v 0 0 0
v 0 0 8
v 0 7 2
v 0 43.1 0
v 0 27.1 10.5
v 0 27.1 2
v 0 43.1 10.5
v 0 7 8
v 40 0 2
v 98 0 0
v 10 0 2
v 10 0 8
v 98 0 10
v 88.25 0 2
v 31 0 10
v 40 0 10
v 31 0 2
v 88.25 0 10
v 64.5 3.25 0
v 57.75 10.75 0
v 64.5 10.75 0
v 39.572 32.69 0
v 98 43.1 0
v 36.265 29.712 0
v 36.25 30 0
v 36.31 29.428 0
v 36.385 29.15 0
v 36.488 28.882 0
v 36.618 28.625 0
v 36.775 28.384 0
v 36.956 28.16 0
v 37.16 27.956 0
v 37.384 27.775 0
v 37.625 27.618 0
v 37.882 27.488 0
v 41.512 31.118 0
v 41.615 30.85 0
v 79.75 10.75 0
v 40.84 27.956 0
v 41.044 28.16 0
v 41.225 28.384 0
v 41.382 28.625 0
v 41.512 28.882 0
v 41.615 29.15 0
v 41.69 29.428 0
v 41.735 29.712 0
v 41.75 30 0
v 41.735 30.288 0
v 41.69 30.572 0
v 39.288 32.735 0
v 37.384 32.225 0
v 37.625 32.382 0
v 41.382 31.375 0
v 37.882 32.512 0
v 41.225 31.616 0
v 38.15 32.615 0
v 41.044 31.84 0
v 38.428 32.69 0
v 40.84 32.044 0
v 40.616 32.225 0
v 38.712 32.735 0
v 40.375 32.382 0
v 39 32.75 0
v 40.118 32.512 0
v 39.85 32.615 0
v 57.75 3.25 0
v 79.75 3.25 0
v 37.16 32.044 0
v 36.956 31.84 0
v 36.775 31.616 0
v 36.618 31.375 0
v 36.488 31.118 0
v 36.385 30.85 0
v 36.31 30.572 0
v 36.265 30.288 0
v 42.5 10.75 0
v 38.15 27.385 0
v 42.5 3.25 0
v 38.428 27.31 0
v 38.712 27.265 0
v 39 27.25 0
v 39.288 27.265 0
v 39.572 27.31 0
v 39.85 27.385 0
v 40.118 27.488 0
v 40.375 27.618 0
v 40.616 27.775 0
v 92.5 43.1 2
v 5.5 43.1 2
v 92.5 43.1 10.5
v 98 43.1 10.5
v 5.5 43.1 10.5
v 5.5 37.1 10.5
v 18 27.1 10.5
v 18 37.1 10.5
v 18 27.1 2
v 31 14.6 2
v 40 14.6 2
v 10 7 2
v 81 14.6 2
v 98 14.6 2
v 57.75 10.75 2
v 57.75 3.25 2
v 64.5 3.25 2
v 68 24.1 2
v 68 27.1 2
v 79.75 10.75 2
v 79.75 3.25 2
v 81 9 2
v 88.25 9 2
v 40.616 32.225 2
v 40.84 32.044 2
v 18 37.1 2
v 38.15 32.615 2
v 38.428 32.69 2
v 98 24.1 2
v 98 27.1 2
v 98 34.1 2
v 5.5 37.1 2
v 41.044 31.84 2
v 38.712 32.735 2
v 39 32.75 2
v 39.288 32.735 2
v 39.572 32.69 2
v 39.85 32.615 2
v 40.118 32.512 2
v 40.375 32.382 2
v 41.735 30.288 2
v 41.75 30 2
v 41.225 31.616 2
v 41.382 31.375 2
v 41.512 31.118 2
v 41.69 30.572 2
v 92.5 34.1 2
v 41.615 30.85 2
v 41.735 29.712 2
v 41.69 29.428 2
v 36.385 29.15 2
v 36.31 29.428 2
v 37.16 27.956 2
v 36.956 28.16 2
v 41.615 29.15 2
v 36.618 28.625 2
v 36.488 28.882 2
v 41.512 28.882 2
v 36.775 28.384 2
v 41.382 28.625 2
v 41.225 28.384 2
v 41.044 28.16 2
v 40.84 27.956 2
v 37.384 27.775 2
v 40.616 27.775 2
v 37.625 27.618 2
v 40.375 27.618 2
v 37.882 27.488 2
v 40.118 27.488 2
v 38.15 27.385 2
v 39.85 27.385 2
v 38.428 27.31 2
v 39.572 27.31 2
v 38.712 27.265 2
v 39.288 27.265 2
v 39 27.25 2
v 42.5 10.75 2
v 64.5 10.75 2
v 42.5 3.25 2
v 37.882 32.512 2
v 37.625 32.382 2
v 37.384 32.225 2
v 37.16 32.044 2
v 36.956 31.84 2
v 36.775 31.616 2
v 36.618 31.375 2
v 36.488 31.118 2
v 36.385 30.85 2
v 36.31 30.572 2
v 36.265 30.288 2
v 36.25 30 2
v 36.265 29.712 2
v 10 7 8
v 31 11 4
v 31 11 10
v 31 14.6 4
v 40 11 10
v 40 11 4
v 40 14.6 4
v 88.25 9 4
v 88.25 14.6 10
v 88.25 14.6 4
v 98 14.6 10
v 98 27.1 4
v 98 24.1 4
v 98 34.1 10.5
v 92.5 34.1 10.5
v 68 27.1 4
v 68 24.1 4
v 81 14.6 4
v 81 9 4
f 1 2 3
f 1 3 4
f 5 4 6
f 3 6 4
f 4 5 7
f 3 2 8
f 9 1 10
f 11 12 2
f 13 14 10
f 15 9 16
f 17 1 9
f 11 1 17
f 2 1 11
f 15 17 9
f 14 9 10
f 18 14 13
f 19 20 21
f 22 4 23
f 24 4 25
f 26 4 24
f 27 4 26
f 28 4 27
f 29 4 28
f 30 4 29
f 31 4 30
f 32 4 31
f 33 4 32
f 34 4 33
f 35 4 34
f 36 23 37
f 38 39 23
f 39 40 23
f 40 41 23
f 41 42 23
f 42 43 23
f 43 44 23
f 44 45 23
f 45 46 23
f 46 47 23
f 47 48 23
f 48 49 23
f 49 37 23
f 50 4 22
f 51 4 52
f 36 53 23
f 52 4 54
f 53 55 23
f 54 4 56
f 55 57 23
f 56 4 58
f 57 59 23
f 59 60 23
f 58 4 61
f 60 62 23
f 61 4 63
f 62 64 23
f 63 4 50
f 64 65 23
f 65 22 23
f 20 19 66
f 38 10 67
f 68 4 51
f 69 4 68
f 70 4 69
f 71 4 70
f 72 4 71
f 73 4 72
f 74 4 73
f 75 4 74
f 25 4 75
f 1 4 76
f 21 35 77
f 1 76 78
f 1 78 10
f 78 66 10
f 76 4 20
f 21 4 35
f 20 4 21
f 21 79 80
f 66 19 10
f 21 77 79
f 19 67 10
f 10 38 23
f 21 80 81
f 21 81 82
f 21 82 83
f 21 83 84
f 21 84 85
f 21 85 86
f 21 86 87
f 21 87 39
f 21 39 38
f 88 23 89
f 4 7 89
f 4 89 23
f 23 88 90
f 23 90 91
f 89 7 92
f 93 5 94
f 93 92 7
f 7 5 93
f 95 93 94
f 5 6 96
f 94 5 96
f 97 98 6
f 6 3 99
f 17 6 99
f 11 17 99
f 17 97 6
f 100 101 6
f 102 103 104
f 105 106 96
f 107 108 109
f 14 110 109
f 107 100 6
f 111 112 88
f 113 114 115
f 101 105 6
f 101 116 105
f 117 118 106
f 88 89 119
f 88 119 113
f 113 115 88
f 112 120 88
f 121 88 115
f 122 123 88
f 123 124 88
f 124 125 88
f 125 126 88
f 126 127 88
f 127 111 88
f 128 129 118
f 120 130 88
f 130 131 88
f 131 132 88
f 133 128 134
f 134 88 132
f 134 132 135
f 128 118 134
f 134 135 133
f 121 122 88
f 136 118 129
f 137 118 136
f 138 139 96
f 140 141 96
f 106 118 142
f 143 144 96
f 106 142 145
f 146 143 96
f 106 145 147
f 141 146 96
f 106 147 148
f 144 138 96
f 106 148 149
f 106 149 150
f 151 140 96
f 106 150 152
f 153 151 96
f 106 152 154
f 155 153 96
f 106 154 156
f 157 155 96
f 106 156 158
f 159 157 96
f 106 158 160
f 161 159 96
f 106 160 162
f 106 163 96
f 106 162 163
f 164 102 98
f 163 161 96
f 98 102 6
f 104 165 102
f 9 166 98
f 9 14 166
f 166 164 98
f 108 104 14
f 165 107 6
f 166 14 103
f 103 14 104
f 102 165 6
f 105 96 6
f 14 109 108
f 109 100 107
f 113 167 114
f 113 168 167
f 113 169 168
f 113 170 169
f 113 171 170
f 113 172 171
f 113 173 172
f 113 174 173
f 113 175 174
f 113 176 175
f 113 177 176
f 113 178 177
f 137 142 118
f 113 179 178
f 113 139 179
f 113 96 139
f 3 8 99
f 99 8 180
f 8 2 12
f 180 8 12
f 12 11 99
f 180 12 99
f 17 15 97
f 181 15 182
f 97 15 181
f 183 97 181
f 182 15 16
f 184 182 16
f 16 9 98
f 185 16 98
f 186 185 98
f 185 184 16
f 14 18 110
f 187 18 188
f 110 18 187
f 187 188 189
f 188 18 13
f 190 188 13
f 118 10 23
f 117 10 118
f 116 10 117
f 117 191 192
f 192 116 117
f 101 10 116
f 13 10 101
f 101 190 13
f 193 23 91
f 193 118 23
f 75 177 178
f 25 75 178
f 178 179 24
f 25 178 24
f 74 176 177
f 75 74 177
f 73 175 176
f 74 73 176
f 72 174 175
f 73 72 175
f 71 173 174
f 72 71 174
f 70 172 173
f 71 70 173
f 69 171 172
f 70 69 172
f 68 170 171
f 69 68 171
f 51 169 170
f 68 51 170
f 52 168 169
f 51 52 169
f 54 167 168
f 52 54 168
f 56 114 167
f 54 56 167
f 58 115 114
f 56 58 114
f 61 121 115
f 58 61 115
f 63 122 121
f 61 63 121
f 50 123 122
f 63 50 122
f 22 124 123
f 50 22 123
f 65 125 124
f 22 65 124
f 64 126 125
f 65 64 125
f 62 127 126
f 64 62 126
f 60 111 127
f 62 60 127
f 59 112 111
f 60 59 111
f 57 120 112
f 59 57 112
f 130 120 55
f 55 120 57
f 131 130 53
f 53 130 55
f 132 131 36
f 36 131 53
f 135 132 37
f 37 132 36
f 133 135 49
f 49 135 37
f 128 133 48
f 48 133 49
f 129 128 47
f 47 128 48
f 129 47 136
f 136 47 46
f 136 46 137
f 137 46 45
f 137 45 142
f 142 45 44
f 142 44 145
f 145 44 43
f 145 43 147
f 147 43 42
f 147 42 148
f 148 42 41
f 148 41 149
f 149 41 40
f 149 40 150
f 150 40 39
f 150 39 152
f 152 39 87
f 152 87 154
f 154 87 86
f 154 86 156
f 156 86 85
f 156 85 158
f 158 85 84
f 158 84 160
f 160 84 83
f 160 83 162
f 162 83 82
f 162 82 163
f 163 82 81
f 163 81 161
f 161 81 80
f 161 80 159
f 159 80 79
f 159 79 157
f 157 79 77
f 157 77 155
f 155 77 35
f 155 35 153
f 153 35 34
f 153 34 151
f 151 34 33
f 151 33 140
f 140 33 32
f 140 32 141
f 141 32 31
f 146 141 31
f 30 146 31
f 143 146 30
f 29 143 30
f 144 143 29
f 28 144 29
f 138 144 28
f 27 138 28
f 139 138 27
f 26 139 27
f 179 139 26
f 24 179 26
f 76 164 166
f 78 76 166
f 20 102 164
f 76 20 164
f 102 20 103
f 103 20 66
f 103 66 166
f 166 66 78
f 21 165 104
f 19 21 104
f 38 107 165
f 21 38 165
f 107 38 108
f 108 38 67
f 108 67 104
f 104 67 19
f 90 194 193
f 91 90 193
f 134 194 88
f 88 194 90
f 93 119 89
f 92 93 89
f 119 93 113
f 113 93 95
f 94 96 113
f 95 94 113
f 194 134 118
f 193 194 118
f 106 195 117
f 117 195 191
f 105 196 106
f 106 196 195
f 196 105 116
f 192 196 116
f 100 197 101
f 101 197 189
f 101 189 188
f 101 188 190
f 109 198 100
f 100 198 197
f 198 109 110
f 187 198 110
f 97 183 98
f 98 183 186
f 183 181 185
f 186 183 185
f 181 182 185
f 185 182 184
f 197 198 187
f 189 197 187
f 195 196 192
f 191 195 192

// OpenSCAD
// Thermal imaging camera top plate
//
// View from bottom left corner
//

//
// Main parts of plate
//
module additive_parts() {
  union() {
    // Top plate
    cube([98, 43.1, 2]);

    //
    // Pi Platter section -> front
    //
    translate([0, 0, 0]) {
      cube([10, 7, 8]);          // Left mount
    }
    translate([31, 0, 0]) {
      cube([9, 11, 10]);         // Middle mount
    }
    translate([31, 9, 0]) {
      cube([9, 5.6, 4]);         // Middle PCB base
    }
    translate([88.25 , 0, 0]) {
      cube([9.75, 14.6, 10]);    // Right mount
    }
    translate([81, 9, 0]) {
      cube([9, 5.6, 4]);        // Right PCB base
    }

    //
    // Pocketbeagle section -> rear
    //
    translate([0, 27.1, 0]) {
      cube([18, 10, 10.5]);      // Left mount
    }
    translate([0, 37.1, 0]) {
      cube([5.5, 6, 10.5]);      // Left PCB retainer
    }
    translate([68, 24.1, 0]) {
      cube([30, 3, 4]);          // Right PCB base
    }
    translate([92.5, 34.1, 0]) {
      cube([5.5, 9, 10.5]);      // Right mount
    }
  }
}

//
// Plate with subtractions for holes
//
difference() {
  additive_parts();

  //
  // USB 1
  //
  translate([42.5, 3.25, -1]) {
    cube([15.25, 7.5, 4]);
  }

  //
  // USB 2
  //
  translate([64.5, 3.25, -1]) {
    cube([15.25, 7.5, 4]);
  }

  //
  // LED
  //
  translate([39, 30, 1]) {
    cylinder(h=4, d=5.5, center=true, $fn=60);
  }
}
